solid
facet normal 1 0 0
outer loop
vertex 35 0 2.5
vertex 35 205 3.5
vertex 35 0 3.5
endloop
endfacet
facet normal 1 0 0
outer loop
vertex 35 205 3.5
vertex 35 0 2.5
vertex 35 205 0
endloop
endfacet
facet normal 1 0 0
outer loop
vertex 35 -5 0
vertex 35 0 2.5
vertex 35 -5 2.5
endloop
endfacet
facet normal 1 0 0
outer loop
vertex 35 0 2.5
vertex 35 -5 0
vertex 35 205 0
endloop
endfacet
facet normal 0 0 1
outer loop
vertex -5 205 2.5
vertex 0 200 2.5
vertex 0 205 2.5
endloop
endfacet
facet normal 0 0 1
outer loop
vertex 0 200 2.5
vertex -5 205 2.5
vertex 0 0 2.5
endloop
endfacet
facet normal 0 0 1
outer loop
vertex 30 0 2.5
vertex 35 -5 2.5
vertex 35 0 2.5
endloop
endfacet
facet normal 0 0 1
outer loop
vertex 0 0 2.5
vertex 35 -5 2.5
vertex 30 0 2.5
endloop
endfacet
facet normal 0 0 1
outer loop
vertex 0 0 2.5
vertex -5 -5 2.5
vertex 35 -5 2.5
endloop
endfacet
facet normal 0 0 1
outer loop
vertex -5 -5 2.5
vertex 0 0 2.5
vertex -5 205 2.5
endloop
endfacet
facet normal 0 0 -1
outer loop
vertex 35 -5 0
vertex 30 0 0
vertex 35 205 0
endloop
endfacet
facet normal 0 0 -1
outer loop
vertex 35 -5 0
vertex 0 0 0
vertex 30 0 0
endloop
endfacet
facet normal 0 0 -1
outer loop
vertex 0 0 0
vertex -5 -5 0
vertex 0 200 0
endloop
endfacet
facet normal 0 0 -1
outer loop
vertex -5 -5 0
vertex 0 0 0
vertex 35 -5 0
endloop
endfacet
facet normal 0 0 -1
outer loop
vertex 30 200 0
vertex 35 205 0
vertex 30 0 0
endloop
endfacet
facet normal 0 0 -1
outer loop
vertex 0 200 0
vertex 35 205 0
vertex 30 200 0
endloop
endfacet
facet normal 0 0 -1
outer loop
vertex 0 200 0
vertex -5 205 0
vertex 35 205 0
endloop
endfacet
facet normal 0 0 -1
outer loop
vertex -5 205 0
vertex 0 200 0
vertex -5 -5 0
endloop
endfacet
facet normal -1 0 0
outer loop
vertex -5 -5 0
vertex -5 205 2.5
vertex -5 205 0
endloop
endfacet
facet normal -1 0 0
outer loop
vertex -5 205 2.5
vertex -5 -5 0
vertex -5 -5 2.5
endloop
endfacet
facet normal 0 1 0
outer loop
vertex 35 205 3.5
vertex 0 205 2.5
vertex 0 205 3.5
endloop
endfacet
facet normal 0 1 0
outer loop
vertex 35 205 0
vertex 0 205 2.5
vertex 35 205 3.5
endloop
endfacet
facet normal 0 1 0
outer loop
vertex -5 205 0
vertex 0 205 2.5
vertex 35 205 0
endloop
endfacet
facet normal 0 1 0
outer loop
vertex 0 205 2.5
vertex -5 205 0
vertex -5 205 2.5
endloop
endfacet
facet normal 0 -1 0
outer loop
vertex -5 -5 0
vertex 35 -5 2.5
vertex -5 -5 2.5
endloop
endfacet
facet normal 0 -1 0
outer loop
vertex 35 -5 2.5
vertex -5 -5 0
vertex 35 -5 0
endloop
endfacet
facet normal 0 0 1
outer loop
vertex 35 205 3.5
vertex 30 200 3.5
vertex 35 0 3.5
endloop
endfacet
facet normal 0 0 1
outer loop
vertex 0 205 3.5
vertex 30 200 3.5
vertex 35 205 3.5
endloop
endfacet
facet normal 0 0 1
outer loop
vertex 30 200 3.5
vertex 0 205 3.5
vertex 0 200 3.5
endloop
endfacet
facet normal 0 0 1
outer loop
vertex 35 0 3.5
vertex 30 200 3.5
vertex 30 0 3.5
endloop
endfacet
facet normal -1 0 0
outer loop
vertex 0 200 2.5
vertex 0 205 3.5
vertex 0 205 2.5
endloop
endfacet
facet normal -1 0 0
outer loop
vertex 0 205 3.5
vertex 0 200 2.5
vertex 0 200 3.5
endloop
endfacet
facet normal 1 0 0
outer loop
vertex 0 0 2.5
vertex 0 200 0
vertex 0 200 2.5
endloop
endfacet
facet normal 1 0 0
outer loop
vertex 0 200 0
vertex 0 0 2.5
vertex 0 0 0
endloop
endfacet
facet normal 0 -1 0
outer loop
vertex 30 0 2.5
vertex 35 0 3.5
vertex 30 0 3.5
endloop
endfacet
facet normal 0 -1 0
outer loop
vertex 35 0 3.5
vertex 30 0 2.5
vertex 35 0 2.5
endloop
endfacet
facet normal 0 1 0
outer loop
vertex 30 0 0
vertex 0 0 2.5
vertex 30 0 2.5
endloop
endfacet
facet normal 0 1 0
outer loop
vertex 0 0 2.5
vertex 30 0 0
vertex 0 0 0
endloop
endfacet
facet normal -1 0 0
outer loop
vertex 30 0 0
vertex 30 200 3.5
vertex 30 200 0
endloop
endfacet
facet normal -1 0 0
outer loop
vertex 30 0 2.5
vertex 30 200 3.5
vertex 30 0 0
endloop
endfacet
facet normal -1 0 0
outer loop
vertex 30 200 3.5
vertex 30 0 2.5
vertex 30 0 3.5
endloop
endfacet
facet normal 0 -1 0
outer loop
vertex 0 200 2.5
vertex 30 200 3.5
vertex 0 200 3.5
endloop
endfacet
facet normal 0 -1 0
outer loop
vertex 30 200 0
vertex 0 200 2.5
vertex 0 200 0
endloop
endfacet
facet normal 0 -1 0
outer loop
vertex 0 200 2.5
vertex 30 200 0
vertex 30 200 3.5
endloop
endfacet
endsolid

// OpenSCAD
// file: ../dimensions.scad
Ddovetail = [
    [ "male",
        [
            [ "head_height", 0.8 ],
            [ "body_width" , 2   ],
            [ "body_height", 0.6 ],
        ]
    ],
    [ "female",
        [
            [ "head_height", 1   ],
            [ "body_width" , 2.4 ],
            [ "body_height", 0.5 ],
        ]
    ],
];

Dsheet = [
    [ "width", 30 ], // 10mm for each LED strip, 4mm of space between them, 3mm on each side for the lips
    [ "length", 200 ],
    [ "thickness", 1 ],
    [ "offset", 1 ], // This is the thickness of material above the sheet
    [ "lip_width", 3], // Per lip
    [ "lip_thickness", 2],
];

Dlamp = [
    [ "width", get(Dsheet, "width") + 1 * 4 + 5 ], // 1mm on each side of the half dovetails + the approximate width of a dovetail
    [ "base_height", get(Dsheet, "offset") + get(Dsheet, "thickness") + get(Dsheet, "lip_thickness") ],
    [ "stoppers_thickness", 1.5 ],
];

// Mount
mount_general = [
    [ "length", 25 ],
    [ "locking_nubs_position", 2 ],
];

mount_male = [
    [ "wall_thickness", 2 ],
    [ "tape_thickness", 0.4], // Extra wall height
];

mount_female = [
    [ "width", get(Dlamp, "width") + (-get(mount_male, "wall_thickness") - 0.2) * 2],
    [ "height", 1 + get(get(Ddovetail, "female"), "head_height") + get(get(Ddovetail, "female"), "body_height")],
    [ "back_stop_thickness", 1 ],
];

Dmount = [
    [ "general", mount_general],
    [ "male", mount_male],
    [ "female", mount_female],
];

mounts_pos = [
    get(get(Dmount, "general"), "length") + 2,
    //get(Dsheet, "length") / 2,
    get(Dsheet, "length") - get(get(Dmount, "general"), "length"),
];

Ddiffuser = [
    [ "height", 20 ],
    [ "corner_radius", 5 ],
    [ "thickness", 1 ],
    [ "dovetail_offset", 1 ],
];
// file: ../utility.scad
// Hashmap function
function get(hashmap, key) = [ for (i = hashmap) if (i[0] == key) i[1] ][0];
// Utility functions
function reverse(list) = [for (i = [len(list)-1:-1:0]) list[i]]; // From scad-utils
function flip_sign_x(list) = [ for (i = list) [ i[0] * -1, i[1] ] ];
module mirror_x() {
    for (i = [0, 1]) { mirror([i, 0, 0]) {
        children();
    }}
}
// main file
use <../utility.scad>
include <../dimensions.scad>

difference() {
    wall_thickness = 5;
    height = 2.5;
    union() {
        // Walls
        translate([-wall_thickness, -wall_thickness, 0])
        cube([get(Dsheet, "width") + wall_thickness * 2, get(Dsheet, "length") + wall_thickness * 2, height]);
        // Extra ridge for lining up
        cube([get(Dsheet, "width") + wall_thickness, get(Dsheet, "length") + wall_thickness, height + get(Dsheet, "thickness")]);
    }
    // Cutout for sheet
    cube([get(Dsheet, "width"), get(Dsheet, "length"), height + get(Dsheet, "thickness")]);
}
